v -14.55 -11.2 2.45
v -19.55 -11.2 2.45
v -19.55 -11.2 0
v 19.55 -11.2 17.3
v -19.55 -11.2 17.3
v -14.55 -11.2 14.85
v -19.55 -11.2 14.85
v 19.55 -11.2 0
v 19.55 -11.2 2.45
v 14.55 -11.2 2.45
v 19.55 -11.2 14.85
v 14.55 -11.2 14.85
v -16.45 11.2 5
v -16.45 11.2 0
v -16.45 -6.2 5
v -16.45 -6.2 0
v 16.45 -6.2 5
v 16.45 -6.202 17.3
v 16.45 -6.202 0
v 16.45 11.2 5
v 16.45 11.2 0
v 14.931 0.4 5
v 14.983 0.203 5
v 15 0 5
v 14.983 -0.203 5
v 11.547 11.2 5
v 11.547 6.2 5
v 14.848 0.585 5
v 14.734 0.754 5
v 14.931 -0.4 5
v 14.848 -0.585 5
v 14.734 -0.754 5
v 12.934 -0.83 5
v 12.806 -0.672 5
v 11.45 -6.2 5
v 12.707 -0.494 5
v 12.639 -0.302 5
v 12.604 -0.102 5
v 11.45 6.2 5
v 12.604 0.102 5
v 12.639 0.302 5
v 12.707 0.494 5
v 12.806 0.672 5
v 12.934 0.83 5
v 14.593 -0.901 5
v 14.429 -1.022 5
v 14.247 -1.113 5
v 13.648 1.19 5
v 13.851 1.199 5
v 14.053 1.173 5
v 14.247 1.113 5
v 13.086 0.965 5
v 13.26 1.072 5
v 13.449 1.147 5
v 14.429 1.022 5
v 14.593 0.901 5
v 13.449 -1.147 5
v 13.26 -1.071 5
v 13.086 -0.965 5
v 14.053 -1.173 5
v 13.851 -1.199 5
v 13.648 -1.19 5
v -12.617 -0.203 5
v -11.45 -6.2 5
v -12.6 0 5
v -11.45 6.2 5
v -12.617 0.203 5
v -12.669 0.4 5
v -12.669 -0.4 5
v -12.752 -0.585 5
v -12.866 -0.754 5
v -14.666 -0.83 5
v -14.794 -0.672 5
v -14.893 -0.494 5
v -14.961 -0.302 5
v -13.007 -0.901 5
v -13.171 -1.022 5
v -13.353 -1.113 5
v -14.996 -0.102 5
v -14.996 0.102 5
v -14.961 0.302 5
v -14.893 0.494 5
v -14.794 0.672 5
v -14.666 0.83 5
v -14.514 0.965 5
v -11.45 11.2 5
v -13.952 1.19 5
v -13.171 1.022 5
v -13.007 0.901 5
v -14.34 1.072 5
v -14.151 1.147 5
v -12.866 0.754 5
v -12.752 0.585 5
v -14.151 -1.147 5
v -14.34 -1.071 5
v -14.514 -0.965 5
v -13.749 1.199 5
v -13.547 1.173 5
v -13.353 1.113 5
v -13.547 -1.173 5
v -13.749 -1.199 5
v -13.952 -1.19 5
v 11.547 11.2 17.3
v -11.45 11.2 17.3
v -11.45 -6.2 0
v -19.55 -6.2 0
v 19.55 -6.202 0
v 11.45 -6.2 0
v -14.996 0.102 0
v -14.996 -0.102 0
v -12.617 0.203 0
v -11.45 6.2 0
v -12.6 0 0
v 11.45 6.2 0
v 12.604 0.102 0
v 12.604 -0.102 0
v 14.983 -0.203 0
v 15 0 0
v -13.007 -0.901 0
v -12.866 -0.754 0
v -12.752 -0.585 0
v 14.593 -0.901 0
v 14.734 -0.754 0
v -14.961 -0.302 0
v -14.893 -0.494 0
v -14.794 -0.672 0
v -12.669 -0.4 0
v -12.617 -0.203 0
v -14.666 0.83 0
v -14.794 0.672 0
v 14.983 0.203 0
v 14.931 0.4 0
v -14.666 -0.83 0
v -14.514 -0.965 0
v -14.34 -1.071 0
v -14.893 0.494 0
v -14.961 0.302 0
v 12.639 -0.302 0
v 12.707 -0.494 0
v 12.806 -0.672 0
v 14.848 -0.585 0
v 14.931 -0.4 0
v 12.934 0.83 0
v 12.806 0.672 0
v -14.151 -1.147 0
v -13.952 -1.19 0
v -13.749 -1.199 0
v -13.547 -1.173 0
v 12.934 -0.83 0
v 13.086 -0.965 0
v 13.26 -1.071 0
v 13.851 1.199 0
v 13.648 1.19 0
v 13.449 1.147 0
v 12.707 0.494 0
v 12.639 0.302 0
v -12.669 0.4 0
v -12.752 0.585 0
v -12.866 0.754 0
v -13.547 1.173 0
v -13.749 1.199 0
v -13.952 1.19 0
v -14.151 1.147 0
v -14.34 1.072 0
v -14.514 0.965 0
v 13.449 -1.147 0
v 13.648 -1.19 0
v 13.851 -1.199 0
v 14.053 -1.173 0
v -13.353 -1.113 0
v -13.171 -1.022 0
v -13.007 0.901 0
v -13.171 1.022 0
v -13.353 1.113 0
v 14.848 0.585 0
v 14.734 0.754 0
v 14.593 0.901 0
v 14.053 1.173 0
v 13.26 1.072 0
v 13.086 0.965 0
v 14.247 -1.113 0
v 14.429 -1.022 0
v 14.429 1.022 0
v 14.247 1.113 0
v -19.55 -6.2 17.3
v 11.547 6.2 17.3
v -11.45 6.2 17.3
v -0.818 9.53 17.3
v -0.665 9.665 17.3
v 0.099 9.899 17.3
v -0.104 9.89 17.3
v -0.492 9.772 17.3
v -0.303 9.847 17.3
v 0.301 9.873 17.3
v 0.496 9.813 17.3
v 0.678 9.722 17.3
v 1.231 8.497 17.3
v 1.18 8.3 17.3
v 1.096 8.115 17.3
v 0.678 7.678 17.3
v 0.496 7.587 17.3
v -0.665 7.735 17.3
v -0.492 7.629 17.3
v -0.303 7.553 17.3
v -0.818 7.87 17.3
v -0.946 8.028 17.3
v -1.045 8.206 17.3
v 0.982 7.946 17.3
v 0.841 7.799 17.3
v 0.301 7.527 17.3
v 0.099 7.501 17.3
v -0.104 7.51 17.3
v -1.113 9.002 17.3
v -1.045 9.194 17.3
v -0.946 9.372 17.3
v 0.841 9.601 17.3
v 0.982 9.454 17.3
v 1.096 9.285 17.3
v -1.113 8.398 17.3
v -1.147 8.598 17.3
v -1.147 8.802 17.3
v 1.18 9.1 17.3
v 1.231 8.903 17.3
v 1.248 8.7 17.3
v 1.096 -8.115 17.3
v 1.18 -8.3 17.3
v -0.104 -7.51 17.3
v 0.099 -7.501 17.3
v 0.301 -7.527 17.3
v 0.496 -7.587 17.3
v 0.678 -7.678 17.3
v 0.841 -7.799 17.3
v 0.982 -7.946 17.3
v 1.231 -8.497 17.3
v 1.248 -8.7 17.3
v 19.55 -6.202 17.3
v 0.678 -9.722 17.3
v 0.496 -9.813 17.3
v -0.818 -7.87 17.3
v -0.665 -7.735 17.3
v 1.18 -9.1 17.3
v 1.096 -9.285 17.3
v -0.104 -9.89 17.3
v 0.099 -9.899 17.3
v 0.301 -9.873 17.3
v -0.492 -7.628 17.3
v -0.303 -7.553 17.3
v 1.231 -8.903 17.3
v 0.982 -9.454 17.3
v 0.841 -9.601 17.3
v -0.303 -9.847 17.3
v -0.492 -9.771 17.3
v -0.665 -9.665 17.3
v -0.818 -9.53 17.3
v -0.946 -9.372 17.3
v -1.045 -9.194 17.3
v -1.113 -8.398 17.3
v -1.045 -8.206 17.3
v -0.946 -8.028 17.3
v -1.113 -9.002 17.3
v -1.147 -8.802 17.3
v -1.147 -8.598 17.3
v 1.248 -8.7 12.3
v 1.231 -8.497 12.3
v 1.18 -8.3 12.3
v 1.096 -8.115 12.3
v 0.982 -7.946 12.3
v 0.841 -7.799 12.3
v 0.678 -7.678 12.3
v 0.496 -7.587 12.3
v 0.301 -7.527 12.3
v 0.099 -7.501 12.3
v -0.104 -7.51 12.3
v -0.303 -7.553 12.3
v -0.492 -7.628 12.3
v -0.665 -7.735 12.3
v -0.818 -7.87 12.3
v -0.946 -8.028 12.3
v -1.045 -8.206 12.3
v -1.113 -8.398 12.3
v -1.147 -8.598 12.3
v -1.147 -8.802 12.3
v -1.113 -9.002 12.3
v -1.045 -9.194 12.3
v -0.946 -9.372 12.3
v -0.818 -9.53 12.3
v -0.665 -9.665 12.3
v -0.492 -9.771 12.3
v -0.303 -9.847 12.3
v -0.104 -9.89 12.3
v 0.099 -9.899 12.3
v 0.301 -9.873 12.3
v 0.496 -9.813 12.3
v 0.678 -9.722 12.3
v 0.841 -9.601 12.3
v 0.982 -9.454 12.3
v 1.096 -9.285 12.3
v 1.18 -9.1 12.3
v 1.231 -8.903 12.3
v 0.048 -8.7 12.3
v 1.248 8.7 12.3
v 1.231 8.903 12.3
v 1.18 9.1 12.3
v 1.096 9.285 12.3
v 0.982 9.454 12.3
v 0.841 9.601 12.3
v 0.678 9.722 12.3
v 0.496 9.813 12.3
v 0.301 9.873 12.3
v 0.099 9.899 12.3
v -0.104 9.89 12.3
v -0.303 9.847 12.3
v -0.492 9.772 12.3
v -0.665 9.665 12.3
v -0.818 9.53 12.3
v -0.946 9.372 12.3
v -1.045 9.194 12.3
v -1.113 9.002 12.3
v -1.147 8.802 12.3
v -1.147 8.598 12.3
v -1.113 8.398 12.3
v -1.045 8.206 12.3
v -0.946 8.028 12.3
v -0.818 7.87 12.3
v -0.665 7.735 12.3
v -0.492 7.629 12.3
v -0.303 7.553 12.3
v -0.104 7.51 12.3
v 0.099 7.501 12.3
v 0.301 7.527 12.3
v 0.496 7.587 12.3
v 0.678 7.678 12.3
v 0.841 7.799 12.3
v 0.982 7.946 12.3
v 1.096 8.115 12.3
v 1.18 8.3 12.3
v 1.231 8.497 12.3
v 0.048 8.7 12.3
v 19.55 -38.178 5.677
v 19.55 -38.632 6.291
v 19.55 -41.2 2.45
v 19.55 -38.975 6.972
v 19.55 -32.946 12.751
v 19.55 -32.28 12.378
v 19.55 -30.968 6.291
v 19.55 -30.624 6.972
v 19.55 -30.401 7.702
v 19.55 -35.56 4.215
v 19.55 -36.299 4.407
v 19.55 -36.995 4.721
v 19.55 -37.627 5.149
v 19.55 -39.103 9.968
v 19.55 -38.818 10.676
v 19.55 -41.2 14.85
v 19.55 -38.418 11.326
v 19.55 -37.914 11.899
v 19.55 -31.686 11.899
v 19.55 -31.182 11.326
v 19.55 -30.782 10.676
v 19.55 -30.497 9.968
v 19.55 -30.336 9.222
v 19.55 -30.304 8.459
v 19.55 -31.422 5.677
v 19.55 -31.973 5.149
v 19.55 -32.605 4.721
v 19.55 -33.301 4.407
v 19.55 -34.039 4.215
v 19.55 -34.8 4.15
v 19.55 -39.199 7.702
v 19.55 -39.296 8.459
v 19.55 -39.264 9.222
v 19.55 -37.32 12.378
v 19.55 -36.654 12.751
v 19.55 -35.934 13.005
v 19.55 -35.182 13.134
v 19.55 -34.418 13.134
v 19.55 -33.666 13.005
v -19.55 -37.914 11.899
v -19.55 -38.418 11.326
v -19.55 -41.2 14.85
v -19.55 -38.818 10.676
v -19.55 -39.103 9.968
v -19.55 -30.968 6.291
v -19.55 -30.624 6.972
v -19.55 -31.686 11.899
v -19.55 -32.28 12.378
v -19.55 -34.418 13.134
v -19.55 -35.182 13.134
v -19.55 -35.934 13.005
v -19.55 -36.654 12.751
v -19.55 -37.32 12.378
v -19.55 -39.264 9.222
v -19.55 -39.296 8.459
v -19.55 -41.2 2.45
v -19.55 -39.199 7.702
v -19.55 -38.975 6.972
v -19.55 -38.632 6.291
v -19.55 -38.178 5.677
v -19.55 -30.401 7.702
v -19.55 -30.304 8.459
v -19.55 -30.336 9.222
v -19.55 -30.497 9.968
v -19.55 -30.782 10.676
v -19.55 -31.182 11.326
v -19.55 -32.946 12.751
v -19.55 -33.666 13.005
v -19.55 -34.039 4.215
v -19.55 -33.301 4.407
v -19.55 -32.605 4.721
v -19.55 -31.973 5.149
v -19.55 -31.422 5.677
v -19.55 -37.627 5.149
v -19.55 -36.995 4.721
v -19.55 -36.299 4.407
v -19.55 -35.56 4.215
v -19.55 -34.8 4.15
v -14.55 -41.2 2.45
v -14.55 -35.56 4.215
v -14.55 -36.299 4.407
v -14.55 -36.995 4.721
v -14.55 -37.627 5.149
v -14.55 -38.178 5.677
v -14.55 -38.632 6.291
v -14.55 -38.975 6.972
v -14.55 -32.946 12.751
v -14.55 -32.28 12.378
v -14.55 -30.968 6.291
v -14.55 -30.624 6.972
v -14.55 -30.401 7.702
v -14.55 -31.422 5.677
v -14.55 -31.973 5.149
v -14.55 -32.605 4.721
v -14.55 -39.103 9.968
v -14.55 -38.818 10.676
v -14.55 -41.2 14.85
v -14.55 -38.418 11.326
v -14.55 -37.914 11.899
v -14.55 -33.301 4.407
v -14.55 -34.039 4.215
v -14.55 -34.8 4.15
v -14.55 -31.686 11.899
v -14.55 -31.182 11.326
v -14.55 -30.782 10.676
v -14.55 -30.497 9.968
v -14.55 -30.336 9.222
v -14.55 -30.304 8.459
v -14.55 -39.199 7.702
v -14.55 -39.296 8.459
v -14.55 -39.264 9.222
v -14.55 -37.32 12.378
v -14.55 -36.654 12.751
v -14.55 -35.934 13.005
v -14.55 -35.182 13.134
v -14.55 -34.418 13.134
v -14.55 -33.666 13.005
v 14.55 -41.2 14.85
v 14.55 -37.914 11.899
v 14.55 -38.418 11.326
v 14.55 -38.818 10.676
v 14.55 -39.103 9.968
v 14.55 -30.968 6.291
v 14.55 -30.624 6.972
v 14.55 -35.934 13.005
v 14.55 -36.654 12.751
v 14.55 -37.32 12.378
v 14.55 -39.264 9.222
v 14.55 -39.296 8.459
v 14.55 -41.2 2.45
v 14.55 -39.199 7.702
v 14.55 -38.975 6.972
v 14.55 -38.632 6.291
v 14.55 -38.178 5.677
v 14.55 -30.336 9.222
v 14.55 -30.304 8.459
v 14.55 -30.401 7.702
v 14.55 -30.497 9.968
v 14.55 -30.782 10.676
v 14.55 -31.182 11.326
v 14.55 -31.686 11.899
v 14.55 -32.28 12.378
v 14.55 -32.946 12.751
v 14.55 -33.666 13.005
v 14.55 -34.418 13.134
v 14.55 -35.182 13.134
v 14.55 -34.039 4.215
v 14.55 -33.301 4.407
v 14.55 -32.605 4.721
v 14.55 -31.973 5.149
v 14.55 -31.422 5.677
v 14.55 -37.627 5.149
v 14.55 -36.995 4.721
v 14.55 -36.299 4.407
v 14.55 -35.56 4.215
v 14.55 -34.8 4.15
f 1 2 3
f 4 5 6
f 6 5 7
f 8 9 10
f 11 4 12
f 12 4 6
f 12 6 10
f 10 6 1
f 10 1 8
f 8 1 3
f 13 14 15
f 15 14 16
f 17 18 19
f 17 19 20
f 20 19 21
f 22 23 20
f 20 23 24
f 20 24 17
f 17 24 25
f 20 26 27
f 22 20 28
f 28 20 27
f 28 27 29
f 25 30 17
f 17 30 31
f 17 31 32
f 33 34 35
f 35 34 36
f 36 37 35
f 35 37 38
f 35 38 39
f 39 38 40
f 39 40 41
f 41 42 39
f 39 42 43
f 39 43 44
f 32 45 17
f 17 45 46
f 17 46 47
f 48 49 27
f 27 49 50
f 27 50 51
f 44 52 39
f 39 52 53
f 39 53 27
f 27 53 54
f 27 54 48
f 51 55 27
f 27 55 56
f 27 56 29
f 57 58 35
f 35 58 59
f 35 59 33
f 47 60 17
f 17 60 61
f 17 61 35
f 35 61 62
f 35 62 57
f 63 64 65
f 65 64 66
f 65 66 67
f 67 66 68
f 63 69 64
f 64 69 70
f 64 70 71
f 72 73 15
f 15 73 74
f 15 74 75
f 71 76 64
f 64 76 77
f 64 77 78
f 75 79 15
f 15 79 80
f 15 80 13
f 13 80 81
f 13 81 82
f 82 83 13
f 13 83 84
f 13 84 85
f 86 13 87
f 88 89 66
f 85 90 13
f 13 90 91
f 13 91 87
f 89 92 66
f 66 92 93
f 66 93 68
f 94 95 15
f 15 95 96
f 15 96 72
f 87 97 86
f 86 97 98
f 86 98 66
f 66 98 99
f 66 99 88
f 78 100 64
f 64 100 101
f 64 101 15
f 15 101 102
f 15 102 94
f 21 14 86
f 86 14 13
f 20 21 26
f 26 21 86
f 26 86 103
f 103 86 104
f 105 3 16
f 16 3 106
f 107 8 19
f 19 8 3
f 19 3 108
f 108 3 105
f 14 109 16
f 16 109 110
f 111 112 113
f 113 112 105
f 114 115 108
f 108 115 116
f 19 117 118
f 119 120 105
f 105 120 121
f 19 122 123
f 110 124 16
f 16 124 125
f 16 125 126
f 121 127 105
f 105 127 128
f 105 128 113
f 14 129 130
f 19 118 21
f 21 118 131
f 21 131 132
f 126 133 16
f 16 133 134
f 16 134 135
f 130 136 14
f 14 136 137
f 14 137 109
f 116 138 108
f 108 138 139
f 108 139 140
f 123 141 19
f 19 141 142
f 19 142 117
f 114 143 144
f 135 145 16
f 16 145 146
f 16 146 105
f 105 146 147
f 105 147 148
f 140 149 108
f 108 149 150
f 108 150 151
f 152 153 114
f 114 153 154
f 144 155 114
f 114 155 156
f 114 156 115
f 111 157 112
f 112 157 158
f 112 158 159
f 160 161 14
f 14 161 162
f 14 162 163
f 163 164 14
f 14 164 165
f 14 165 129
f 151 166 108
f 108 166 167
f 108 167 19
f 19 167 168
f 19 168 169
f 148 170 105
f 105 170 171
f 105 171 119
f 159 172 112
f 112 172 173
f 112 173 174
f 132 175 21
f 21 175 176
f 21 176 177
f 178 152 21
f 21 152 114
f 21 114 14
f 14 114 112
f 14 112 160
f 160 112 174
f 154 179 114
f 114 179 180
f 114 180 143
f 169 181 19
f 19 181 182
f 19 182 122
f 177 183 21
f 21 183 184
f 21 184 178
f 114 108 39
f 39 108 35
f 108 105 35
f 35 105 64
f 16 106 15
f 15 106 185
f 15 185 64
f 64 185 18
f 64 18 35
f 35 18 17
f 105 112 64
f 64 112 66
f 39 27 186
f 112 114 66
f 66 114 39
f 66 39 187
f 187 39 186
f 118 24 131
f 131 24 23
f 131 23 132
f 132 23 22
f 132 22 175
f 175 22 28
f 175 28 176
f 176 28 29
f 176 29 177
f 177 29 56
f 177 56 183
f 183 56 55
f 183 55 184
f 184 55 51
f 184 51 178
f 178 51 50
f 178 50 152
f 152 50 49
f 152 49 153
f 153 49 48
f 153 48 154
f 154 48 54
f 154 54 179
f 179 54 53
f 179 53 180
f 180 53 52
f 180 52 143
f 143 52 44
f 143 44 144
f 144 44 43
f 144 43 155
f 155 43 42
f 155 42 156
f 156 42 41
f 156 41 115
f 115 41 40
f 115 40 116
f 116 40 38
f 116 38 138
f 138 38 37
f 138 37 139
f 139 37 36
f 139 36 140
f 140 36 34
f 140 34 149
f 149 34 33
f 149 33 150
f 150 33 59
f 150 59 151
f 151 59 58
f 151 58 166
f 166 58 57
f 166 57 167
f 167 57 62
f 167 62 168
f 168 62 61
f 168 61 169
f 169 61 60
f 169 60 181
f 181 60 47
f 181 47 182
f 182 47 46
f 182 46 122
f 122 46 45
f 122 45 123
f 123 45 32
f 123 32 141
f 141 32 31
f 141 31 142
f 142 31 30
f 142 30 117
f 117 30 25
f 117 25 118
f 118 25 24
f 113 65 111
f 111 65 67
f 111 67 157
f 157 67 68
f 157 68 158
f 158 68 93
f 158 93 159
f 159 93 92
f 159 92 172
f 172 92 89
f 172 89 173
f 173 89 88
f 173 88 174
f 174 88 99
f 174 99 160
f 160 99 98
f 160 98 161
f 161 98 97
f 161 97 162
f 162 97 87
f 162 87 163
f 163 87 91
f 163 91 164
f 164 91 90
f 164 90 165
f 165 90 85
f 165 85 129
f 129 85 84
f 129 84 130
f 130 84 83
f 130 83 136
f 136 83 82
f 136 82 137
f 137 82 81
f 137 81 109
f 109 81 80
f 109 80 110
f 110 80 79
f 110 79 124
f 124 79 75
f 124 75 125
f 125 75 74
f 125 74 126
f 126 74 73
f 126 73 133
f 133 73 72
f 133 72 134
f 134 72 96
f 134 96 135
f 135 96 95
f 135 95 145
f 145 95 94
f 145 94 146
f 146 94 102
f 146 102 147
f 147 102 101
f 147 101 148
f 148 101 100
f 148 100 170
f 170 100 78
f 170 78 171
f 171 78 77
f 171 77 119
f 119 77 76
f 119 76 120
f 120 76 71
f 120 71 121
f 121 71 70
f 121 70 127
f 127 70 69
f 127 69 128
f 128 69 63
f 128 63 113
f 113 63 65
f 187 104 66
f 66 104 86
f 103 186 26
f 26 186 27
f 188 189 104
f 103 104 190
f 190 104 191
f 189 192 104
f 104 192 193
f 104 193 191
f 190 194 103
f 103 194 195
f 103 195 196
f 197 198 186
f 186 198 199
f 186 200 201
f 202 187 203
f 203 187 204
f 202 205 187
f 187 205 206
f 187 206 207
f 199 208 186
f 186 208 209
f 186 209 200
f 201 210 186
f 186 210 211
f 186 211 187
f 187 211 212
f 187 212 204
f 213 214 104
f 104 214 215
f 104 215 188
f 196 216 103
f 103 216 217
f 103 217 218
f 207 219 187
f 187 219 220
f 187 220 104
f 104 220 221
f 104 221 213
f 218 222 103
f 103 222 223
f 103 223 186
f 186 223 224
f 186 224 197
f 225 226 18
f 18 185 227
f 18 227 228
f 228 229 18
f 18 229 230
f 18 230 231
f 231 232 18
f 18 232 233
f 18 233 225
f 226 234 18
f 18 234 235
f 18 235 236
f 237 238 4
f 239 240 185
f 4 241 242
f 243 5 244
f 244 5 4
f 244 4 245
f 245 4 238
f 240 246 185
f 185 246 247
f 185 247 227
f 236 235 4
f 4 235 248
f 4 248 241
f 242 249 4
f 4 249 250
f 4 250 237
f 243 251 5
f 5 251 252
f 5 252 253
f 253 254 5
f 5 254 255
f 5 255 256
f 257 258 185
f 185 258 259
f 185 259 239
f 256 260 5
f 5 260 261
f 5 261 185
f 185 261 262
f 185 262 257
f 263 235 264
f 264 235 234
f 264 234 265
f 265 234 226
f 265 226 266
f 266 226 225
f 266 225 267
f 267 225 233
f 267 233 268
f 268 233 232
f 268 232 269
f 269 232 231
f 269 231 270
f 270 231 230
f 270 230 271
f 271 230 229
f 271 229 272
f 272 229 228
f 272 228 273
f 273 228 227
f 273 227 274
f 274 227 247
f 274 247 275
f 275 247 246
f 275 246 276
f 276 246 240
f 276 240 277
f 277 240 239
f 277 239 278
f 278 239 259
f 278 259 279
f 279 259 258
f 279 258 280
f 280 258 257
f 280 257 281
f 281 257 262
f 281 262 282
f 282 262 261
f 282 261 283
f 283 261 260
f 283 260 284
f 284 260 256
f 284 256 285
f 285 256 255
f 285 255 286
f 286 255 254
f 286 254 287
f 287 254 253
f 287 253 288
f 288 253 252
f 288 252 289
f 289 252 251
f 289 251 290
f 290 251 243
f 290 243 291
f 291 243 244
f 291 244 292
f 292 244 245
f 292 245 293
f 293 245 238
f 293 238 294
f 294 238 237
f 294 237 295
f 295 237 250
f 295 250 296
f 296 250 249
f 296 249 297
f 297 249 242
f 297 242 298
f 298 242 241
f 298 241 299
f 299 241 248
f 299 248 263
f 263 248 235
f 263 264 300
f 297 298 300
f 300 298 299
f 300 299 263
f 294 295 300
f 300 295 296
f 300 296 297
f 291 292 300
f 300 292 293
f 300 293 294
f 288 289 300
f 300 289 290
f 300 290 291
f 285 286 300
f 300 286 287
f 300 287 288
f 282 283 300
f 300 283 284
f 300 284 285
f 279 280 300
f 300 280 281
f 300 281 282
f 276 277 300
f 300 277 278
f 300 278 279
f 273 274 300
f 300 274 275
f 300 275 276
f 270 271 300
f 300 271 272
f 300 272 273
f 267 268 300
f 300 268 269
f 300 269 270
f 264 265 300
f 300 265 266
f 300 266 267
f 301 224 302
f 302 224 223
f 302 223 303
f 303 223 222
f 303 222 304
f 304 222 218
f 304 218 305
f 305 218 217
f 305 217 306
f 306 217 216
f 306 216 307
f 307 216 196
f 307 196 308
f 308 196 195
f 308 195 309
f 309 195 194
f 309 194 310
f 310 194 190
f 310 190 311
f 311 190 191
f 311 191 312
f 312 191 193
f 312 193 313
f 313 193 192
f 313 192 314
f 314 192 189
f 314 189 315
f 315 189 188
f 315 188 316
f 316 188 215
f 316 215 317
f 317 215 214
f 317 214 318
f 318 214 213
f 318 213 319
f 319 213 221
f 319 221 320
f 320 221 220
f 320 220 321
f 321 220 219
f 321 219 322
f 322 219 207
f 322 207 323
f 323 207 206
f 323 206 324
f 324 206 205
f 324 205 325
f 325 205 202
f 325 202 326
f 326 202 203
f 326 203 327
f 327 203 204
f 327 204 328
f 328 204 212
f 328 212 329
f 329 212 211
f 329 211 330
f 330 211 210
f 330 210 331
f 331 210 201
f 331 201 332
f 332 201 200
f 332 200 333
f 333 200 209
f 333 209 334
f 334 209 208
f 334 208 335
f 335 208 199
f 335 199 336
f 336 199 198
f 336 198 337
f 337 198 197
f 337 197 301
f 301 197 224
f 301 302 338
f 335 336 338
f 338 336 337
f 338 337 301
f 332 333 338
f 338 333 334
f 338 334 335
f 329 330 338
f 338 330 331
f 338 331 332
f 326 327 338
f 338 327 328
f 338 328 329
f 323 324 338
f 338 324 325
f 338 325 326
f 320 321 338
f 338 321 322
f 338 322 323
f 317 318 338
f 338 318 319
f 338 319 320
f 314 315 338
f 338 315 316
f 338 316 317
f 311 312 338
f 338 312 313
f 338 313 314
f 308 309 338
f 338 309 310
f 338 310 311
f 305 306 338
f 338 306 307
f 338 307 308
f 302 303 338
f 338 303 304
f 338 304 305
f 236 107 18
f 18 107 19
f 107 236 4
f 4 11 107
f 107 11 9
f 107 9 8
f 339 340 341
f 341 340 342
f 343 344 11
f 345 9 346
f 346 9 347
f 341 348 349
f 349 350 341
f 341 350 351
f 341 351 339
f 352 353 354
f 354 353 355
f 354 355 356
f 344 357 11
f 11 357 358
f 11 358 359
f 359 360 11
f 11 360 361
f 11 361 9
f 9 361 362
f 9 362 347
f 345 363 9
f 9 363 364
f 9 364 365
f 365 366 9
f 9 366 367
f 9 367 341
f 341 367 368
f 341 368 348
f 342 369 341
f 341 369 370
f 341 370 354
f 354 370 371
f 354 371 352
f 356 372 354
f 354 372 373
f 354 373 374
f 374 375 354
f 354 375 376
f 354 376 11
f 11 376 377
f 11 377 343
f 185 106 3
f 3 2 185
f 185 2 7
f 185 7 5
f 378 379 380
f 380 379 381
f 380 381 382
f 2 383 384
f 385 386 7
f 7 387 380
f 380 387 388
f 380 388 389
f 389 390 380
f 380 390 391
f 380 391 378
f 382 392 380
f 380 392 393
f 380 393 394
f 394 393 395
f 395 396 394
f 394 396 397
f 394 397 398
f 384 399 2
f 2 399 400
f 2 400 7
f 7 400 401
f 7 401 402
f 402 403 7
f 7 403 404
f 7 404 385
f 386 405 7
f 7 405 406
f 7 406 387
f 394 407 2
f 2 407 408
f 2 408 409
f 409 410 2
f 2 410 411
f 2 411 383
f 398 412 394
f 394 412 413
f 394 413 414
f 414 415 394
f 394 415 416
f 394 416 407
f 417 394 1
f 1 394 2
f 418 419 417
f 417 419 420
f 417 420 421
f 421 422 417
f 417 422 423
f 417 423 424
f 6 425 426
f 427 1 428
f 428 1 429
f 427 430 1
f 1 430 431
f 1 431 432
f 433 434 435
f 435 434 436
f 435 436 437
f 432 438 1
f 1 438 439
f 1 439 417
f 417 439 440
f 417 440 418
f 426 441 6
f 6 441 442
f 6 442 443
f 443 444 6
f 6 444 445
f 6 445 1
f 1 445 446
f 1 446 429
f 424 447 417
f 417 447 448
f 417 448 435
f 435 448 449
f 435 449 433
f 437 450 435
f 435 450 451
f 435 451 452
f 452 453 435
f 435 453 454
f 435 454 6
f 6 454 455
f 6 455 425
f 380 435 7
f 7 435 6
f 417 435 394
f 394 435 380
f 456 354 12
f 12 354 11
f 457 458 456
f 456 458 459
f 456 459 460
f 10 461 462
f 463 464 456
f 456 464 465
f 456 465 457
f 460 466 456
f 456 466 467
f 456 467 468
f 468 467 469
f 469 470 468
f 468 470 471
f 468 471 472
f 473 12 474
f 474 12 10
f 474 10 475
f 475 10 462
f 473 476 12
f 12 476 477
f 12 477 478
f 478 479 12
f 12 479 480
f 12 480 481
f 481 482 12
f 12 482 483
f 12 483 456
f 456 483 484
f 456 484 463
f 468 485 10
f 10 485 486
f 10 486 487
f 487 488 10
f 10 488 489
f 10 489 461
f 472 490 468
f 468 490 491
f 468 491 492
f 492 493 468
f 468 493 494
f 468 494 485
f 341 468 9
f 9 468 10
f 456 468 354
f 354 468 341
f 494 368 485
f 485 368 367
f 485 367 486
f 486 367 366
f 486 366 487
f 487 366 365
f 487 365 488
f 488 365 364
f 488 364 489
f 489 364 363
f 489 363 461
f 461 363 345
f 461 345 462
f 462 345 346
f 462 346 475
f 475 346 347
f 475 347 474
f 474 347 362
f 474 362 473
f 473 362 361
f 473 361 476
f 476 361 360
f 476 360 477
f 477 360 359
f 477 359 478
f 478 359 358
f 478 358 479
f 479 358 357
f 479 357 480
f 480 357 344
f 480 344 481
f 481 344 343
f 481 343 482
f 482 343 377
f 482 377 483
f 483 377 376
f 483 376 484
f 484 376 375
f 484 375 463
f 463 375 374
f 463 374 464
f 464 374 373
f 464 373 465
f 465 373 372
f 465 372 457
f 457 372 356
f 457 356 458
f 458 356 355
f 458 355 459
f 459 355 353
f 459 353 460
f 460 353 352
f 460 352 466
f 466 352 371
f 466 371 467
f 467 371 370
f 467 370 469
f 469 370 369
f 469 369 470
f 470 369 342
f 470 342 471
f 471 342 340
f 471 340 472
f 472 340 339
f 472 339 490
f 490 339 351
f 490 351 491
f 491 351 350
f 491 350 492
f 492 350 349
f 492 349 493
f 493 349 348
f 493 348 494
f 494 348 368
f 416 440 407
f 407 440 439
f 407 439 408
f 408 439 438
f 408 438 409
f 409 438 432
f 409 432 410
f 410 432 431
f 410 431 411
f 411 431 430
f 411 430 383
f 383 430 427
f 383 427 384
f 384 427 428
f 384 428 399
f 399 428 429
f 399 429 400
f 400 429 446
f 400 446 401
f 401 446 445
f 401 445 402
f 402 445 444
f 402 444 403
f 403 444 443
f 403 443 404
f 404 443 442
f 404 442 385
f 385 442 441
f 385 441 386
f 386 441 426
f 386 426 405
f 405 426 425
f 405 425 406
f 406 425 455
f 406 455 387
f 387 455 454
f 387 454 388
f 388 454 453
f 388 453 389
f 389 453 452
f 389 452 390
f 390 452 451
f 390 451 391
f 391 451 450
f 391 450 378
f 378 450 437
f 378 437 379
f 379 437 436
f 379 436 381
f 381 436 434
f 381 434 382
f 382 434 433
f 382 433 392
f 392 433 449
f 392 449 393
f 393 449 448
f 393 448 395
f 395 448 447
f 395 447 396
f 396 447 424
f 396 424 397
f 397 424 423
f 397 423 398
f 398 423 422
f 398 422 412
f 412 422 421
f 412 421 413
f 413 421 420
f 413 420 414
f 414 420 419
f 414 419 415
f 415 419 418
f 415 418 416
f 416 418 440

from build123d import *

# Parameters (mm, degrees)
SKETCH1_W           = 32.9
SKETCH1_H           = 22.4
BOSS_EXTRUDE1_DEPTH = 5
SKETCH2_R           = 1.2
SKETCH2_W           = 22.9
SKETCH2_H           = 12.4
CUT_EXTRUDE2_DEPTH  = 5
SKETCH3_W           = 22.996888994
SKETCH3_H           = 5
BOSS_EXTRUDE2_DEPTH = 12.3
SKETCH4_R           = 1.2
CUT_EXTRUDE3_DEPTH  = 5
SKETCH6_W           = 5
SKETCH6_H           = 5
SKETCH6_W_2         = 4.903111006
BOSS_EXTRUDE3_DEPTH = 12.3
SKETCH8_W           = 17.3
SKETCH8_H           = 4.998204887
BOSS_EXTRUDE4_DEPTH = 3.1
SKETCH9_W           = 17.3
SKETCH9_H           = 5
BOSS_EXTRUDE5_DEPTH = 3.1
SKETCH18_W          = 5
SKETCH18_H          = 12.4
BOSS_EXTRUDE7_DEPTH = 30
SKETCH19_R          = 4.5
CUT_EXTRUDE6_DEPTH  = 30
SKETCH20_R          = 4.5
CUT_EXTRUDE7_DEPTH  = 30
SKETCH10_W          = 5
SKETCH10_H          = 12.4
BOSS_EXTRUDE6_DEPTH = 30
SKETCH21_R          = 4.5
CUT_EXTRUDE8_DEPTH  = 10
SKETCH22_R          = 4.5
CUT_EXTRUDE9_DEPTH  = 10


with BuildPart() as part:
    # Sketch1 → Boss-Extrude1 (new body)
    with BuildSketch(Plane.XY):
        Rectangle(SKETCH1_W, SKETCH1_H)
    extrude(amount=BOSS_EXTRUDE1_DEPTH)

    # Sketch2 → Cut-Extrude2 (cut)
    with BuildSketch(Plane.XY.offset(5)):
        with Locations((13.8, 0)):
            Circle(SKETCH2_R)
        with Locations((-13.8, 0)):
            Circle(SKETCH2_R)
        Rectangle(SKETCH2_W, SKETCH2_H)
    extrude(amount=-CUT_EXTRUDE2_DEPTH, mode=Mode.SUBTRACT)

    # Sketch3 → Boss-Extrude2 (add)
    with BuildSketch(Plane.XY.offset(5)):
        with Locations((0.048444497, 8.7)):
            Rectangle(SKETCH3_W, SKETCH3_H)
        with Locations((0.048444497, -8.7)):
            Rectangle(SKETCH3_W, SKETCH3_H)
    extrude(amount=BOSS_EXTRUDE2_DEPTH)

    # Sketch4 → Cut-Extrude3 (cut)
    with BuildSketch(Plane.XY.offset(17.3)):
        with Locations((0.048444497, 8.7)):
            Circle(SKETCH4_R)
        with Locations((0.048444497, -8.7)):
            Circle(SKETCH4_R)
    extrude(amount=-CUT_EXTRUDE3_DEPTH, mode=Mode.SUBTRACT)

    # Sketch6 → Boss-Extrude3 (add)
    with BuildSketch(Plane.XY.offset(5)):
        with Locations((-13.95, -8.7)):
            Rectangle(SKETCH6_W, SKETCH6_H)
        with Locations((13.998444497, -8.7)):
            Rectangle(SKETCH6_W_2, SKETCH6_H)
    extrude(amount=BOSS_EXTRUDE3_DEPTH)

    # Sketch8 → Boss-Extrude4 (add)
    with BuildSketch(Plane(origin=(16.45, 0, 0), x_dir=(0, 0, -1), z_dir=(1, 0, 0))):
        with Locations((-8.65, -8.700897557)):
            Rectangle(SKETCH8_W, SKETCH8_H)
    extrude(amount=BOSS_EXTRUDE4_DEPTH)

    # Sketch9 → Boss-Extrude5 (add)
    with BuildSketch(Plane.ZY.offset(16.45)):
        with Locations((8.65, -8.7)):
            Rectangle(SKETCH9_W, SKETCH9_H)
    extrude(amount=BOSS_EXTRUDE5_DEPTH)

    # Sketch18 → Boss-Extrude7 (add)
    with BuildSketch(Plane.XZ.offset(11.2)):
        with Locations((-17.05, 8.65)):
            Rectangle(SKETCH18_W, SKETCH18_H)
        with Locations((17.05, 8.65)):
            Rectangle(SKETCH18_W, SKETCH18_H)
    extrude(amount=BOSS_EXTRUDE7_DEPTH)

    # Sketch19 → Cut-Extrude6 (cut)
    with BuildSketch(Plane.ZY.offset(19.55)):
        with Locations((8.65, -34.8)):
            Circle(SKETCH19_R)
    extrude(amount=-CUT_EXTRUDE6_DEPTH, mode=Mode.SUBTRACT)

    # Sketch20 → Cut-Extrude7 (cut)
    with BuildSketch(Plane(origin=(19.55, 0, 0), x_dir=(0, 0, -1), z_dir=(1, 0, 0))):
        with Locations((-8.65, -34.8)):
            Circle(SKETCH20_R)
    extrude(amount=-CUT_EXTRUDE7_DEPTH, mode=Mode.SUBTRACT)

    # Sketch10 → Boss-Extrude6 (add)
    with BuildSketch(Plane.XZ.offset(11.2)):
        with Locations((17.05, 8.65)):
            Rectangle(SKETCH10_W, SKETCH10_H)
        with Locations((-17.05, 8.65)):
            Rectangle(SKETCH10_W, SKETCH10_H)
    extrude(amount=BOSS_EXTRUDE6_DEPTH)

    # Sketch21 → Cut-Extrude8 (cut)
    with BuildSketch(Plane(origin=(19.55, 0, 0), x_dir=(0, 0, -1), z_dir=(1, 0, 0))):
        with Locations((-8.65, -34.8)):
            Circle(SKETCH21_R)
    extrude(amount=-CUT_EXTRUDE8_DEPTH, mode=Mode.SUBTRACT)

    # Sketch22 → Cut-Extrude9 (cut)
    with BuildSketch(Plane(origin=(-14.55, 0, 0), x_dir=(0, 0, -1), z_dir=(1, 0, 0))):
        with Locations((-8.65, -34.8)):
            Circle(SKETCH22_R)
    extrude(amount=-CUT_EXTRUDE9_DEPTH, mode=Mode.SUBTRACT)


solid = part.part
